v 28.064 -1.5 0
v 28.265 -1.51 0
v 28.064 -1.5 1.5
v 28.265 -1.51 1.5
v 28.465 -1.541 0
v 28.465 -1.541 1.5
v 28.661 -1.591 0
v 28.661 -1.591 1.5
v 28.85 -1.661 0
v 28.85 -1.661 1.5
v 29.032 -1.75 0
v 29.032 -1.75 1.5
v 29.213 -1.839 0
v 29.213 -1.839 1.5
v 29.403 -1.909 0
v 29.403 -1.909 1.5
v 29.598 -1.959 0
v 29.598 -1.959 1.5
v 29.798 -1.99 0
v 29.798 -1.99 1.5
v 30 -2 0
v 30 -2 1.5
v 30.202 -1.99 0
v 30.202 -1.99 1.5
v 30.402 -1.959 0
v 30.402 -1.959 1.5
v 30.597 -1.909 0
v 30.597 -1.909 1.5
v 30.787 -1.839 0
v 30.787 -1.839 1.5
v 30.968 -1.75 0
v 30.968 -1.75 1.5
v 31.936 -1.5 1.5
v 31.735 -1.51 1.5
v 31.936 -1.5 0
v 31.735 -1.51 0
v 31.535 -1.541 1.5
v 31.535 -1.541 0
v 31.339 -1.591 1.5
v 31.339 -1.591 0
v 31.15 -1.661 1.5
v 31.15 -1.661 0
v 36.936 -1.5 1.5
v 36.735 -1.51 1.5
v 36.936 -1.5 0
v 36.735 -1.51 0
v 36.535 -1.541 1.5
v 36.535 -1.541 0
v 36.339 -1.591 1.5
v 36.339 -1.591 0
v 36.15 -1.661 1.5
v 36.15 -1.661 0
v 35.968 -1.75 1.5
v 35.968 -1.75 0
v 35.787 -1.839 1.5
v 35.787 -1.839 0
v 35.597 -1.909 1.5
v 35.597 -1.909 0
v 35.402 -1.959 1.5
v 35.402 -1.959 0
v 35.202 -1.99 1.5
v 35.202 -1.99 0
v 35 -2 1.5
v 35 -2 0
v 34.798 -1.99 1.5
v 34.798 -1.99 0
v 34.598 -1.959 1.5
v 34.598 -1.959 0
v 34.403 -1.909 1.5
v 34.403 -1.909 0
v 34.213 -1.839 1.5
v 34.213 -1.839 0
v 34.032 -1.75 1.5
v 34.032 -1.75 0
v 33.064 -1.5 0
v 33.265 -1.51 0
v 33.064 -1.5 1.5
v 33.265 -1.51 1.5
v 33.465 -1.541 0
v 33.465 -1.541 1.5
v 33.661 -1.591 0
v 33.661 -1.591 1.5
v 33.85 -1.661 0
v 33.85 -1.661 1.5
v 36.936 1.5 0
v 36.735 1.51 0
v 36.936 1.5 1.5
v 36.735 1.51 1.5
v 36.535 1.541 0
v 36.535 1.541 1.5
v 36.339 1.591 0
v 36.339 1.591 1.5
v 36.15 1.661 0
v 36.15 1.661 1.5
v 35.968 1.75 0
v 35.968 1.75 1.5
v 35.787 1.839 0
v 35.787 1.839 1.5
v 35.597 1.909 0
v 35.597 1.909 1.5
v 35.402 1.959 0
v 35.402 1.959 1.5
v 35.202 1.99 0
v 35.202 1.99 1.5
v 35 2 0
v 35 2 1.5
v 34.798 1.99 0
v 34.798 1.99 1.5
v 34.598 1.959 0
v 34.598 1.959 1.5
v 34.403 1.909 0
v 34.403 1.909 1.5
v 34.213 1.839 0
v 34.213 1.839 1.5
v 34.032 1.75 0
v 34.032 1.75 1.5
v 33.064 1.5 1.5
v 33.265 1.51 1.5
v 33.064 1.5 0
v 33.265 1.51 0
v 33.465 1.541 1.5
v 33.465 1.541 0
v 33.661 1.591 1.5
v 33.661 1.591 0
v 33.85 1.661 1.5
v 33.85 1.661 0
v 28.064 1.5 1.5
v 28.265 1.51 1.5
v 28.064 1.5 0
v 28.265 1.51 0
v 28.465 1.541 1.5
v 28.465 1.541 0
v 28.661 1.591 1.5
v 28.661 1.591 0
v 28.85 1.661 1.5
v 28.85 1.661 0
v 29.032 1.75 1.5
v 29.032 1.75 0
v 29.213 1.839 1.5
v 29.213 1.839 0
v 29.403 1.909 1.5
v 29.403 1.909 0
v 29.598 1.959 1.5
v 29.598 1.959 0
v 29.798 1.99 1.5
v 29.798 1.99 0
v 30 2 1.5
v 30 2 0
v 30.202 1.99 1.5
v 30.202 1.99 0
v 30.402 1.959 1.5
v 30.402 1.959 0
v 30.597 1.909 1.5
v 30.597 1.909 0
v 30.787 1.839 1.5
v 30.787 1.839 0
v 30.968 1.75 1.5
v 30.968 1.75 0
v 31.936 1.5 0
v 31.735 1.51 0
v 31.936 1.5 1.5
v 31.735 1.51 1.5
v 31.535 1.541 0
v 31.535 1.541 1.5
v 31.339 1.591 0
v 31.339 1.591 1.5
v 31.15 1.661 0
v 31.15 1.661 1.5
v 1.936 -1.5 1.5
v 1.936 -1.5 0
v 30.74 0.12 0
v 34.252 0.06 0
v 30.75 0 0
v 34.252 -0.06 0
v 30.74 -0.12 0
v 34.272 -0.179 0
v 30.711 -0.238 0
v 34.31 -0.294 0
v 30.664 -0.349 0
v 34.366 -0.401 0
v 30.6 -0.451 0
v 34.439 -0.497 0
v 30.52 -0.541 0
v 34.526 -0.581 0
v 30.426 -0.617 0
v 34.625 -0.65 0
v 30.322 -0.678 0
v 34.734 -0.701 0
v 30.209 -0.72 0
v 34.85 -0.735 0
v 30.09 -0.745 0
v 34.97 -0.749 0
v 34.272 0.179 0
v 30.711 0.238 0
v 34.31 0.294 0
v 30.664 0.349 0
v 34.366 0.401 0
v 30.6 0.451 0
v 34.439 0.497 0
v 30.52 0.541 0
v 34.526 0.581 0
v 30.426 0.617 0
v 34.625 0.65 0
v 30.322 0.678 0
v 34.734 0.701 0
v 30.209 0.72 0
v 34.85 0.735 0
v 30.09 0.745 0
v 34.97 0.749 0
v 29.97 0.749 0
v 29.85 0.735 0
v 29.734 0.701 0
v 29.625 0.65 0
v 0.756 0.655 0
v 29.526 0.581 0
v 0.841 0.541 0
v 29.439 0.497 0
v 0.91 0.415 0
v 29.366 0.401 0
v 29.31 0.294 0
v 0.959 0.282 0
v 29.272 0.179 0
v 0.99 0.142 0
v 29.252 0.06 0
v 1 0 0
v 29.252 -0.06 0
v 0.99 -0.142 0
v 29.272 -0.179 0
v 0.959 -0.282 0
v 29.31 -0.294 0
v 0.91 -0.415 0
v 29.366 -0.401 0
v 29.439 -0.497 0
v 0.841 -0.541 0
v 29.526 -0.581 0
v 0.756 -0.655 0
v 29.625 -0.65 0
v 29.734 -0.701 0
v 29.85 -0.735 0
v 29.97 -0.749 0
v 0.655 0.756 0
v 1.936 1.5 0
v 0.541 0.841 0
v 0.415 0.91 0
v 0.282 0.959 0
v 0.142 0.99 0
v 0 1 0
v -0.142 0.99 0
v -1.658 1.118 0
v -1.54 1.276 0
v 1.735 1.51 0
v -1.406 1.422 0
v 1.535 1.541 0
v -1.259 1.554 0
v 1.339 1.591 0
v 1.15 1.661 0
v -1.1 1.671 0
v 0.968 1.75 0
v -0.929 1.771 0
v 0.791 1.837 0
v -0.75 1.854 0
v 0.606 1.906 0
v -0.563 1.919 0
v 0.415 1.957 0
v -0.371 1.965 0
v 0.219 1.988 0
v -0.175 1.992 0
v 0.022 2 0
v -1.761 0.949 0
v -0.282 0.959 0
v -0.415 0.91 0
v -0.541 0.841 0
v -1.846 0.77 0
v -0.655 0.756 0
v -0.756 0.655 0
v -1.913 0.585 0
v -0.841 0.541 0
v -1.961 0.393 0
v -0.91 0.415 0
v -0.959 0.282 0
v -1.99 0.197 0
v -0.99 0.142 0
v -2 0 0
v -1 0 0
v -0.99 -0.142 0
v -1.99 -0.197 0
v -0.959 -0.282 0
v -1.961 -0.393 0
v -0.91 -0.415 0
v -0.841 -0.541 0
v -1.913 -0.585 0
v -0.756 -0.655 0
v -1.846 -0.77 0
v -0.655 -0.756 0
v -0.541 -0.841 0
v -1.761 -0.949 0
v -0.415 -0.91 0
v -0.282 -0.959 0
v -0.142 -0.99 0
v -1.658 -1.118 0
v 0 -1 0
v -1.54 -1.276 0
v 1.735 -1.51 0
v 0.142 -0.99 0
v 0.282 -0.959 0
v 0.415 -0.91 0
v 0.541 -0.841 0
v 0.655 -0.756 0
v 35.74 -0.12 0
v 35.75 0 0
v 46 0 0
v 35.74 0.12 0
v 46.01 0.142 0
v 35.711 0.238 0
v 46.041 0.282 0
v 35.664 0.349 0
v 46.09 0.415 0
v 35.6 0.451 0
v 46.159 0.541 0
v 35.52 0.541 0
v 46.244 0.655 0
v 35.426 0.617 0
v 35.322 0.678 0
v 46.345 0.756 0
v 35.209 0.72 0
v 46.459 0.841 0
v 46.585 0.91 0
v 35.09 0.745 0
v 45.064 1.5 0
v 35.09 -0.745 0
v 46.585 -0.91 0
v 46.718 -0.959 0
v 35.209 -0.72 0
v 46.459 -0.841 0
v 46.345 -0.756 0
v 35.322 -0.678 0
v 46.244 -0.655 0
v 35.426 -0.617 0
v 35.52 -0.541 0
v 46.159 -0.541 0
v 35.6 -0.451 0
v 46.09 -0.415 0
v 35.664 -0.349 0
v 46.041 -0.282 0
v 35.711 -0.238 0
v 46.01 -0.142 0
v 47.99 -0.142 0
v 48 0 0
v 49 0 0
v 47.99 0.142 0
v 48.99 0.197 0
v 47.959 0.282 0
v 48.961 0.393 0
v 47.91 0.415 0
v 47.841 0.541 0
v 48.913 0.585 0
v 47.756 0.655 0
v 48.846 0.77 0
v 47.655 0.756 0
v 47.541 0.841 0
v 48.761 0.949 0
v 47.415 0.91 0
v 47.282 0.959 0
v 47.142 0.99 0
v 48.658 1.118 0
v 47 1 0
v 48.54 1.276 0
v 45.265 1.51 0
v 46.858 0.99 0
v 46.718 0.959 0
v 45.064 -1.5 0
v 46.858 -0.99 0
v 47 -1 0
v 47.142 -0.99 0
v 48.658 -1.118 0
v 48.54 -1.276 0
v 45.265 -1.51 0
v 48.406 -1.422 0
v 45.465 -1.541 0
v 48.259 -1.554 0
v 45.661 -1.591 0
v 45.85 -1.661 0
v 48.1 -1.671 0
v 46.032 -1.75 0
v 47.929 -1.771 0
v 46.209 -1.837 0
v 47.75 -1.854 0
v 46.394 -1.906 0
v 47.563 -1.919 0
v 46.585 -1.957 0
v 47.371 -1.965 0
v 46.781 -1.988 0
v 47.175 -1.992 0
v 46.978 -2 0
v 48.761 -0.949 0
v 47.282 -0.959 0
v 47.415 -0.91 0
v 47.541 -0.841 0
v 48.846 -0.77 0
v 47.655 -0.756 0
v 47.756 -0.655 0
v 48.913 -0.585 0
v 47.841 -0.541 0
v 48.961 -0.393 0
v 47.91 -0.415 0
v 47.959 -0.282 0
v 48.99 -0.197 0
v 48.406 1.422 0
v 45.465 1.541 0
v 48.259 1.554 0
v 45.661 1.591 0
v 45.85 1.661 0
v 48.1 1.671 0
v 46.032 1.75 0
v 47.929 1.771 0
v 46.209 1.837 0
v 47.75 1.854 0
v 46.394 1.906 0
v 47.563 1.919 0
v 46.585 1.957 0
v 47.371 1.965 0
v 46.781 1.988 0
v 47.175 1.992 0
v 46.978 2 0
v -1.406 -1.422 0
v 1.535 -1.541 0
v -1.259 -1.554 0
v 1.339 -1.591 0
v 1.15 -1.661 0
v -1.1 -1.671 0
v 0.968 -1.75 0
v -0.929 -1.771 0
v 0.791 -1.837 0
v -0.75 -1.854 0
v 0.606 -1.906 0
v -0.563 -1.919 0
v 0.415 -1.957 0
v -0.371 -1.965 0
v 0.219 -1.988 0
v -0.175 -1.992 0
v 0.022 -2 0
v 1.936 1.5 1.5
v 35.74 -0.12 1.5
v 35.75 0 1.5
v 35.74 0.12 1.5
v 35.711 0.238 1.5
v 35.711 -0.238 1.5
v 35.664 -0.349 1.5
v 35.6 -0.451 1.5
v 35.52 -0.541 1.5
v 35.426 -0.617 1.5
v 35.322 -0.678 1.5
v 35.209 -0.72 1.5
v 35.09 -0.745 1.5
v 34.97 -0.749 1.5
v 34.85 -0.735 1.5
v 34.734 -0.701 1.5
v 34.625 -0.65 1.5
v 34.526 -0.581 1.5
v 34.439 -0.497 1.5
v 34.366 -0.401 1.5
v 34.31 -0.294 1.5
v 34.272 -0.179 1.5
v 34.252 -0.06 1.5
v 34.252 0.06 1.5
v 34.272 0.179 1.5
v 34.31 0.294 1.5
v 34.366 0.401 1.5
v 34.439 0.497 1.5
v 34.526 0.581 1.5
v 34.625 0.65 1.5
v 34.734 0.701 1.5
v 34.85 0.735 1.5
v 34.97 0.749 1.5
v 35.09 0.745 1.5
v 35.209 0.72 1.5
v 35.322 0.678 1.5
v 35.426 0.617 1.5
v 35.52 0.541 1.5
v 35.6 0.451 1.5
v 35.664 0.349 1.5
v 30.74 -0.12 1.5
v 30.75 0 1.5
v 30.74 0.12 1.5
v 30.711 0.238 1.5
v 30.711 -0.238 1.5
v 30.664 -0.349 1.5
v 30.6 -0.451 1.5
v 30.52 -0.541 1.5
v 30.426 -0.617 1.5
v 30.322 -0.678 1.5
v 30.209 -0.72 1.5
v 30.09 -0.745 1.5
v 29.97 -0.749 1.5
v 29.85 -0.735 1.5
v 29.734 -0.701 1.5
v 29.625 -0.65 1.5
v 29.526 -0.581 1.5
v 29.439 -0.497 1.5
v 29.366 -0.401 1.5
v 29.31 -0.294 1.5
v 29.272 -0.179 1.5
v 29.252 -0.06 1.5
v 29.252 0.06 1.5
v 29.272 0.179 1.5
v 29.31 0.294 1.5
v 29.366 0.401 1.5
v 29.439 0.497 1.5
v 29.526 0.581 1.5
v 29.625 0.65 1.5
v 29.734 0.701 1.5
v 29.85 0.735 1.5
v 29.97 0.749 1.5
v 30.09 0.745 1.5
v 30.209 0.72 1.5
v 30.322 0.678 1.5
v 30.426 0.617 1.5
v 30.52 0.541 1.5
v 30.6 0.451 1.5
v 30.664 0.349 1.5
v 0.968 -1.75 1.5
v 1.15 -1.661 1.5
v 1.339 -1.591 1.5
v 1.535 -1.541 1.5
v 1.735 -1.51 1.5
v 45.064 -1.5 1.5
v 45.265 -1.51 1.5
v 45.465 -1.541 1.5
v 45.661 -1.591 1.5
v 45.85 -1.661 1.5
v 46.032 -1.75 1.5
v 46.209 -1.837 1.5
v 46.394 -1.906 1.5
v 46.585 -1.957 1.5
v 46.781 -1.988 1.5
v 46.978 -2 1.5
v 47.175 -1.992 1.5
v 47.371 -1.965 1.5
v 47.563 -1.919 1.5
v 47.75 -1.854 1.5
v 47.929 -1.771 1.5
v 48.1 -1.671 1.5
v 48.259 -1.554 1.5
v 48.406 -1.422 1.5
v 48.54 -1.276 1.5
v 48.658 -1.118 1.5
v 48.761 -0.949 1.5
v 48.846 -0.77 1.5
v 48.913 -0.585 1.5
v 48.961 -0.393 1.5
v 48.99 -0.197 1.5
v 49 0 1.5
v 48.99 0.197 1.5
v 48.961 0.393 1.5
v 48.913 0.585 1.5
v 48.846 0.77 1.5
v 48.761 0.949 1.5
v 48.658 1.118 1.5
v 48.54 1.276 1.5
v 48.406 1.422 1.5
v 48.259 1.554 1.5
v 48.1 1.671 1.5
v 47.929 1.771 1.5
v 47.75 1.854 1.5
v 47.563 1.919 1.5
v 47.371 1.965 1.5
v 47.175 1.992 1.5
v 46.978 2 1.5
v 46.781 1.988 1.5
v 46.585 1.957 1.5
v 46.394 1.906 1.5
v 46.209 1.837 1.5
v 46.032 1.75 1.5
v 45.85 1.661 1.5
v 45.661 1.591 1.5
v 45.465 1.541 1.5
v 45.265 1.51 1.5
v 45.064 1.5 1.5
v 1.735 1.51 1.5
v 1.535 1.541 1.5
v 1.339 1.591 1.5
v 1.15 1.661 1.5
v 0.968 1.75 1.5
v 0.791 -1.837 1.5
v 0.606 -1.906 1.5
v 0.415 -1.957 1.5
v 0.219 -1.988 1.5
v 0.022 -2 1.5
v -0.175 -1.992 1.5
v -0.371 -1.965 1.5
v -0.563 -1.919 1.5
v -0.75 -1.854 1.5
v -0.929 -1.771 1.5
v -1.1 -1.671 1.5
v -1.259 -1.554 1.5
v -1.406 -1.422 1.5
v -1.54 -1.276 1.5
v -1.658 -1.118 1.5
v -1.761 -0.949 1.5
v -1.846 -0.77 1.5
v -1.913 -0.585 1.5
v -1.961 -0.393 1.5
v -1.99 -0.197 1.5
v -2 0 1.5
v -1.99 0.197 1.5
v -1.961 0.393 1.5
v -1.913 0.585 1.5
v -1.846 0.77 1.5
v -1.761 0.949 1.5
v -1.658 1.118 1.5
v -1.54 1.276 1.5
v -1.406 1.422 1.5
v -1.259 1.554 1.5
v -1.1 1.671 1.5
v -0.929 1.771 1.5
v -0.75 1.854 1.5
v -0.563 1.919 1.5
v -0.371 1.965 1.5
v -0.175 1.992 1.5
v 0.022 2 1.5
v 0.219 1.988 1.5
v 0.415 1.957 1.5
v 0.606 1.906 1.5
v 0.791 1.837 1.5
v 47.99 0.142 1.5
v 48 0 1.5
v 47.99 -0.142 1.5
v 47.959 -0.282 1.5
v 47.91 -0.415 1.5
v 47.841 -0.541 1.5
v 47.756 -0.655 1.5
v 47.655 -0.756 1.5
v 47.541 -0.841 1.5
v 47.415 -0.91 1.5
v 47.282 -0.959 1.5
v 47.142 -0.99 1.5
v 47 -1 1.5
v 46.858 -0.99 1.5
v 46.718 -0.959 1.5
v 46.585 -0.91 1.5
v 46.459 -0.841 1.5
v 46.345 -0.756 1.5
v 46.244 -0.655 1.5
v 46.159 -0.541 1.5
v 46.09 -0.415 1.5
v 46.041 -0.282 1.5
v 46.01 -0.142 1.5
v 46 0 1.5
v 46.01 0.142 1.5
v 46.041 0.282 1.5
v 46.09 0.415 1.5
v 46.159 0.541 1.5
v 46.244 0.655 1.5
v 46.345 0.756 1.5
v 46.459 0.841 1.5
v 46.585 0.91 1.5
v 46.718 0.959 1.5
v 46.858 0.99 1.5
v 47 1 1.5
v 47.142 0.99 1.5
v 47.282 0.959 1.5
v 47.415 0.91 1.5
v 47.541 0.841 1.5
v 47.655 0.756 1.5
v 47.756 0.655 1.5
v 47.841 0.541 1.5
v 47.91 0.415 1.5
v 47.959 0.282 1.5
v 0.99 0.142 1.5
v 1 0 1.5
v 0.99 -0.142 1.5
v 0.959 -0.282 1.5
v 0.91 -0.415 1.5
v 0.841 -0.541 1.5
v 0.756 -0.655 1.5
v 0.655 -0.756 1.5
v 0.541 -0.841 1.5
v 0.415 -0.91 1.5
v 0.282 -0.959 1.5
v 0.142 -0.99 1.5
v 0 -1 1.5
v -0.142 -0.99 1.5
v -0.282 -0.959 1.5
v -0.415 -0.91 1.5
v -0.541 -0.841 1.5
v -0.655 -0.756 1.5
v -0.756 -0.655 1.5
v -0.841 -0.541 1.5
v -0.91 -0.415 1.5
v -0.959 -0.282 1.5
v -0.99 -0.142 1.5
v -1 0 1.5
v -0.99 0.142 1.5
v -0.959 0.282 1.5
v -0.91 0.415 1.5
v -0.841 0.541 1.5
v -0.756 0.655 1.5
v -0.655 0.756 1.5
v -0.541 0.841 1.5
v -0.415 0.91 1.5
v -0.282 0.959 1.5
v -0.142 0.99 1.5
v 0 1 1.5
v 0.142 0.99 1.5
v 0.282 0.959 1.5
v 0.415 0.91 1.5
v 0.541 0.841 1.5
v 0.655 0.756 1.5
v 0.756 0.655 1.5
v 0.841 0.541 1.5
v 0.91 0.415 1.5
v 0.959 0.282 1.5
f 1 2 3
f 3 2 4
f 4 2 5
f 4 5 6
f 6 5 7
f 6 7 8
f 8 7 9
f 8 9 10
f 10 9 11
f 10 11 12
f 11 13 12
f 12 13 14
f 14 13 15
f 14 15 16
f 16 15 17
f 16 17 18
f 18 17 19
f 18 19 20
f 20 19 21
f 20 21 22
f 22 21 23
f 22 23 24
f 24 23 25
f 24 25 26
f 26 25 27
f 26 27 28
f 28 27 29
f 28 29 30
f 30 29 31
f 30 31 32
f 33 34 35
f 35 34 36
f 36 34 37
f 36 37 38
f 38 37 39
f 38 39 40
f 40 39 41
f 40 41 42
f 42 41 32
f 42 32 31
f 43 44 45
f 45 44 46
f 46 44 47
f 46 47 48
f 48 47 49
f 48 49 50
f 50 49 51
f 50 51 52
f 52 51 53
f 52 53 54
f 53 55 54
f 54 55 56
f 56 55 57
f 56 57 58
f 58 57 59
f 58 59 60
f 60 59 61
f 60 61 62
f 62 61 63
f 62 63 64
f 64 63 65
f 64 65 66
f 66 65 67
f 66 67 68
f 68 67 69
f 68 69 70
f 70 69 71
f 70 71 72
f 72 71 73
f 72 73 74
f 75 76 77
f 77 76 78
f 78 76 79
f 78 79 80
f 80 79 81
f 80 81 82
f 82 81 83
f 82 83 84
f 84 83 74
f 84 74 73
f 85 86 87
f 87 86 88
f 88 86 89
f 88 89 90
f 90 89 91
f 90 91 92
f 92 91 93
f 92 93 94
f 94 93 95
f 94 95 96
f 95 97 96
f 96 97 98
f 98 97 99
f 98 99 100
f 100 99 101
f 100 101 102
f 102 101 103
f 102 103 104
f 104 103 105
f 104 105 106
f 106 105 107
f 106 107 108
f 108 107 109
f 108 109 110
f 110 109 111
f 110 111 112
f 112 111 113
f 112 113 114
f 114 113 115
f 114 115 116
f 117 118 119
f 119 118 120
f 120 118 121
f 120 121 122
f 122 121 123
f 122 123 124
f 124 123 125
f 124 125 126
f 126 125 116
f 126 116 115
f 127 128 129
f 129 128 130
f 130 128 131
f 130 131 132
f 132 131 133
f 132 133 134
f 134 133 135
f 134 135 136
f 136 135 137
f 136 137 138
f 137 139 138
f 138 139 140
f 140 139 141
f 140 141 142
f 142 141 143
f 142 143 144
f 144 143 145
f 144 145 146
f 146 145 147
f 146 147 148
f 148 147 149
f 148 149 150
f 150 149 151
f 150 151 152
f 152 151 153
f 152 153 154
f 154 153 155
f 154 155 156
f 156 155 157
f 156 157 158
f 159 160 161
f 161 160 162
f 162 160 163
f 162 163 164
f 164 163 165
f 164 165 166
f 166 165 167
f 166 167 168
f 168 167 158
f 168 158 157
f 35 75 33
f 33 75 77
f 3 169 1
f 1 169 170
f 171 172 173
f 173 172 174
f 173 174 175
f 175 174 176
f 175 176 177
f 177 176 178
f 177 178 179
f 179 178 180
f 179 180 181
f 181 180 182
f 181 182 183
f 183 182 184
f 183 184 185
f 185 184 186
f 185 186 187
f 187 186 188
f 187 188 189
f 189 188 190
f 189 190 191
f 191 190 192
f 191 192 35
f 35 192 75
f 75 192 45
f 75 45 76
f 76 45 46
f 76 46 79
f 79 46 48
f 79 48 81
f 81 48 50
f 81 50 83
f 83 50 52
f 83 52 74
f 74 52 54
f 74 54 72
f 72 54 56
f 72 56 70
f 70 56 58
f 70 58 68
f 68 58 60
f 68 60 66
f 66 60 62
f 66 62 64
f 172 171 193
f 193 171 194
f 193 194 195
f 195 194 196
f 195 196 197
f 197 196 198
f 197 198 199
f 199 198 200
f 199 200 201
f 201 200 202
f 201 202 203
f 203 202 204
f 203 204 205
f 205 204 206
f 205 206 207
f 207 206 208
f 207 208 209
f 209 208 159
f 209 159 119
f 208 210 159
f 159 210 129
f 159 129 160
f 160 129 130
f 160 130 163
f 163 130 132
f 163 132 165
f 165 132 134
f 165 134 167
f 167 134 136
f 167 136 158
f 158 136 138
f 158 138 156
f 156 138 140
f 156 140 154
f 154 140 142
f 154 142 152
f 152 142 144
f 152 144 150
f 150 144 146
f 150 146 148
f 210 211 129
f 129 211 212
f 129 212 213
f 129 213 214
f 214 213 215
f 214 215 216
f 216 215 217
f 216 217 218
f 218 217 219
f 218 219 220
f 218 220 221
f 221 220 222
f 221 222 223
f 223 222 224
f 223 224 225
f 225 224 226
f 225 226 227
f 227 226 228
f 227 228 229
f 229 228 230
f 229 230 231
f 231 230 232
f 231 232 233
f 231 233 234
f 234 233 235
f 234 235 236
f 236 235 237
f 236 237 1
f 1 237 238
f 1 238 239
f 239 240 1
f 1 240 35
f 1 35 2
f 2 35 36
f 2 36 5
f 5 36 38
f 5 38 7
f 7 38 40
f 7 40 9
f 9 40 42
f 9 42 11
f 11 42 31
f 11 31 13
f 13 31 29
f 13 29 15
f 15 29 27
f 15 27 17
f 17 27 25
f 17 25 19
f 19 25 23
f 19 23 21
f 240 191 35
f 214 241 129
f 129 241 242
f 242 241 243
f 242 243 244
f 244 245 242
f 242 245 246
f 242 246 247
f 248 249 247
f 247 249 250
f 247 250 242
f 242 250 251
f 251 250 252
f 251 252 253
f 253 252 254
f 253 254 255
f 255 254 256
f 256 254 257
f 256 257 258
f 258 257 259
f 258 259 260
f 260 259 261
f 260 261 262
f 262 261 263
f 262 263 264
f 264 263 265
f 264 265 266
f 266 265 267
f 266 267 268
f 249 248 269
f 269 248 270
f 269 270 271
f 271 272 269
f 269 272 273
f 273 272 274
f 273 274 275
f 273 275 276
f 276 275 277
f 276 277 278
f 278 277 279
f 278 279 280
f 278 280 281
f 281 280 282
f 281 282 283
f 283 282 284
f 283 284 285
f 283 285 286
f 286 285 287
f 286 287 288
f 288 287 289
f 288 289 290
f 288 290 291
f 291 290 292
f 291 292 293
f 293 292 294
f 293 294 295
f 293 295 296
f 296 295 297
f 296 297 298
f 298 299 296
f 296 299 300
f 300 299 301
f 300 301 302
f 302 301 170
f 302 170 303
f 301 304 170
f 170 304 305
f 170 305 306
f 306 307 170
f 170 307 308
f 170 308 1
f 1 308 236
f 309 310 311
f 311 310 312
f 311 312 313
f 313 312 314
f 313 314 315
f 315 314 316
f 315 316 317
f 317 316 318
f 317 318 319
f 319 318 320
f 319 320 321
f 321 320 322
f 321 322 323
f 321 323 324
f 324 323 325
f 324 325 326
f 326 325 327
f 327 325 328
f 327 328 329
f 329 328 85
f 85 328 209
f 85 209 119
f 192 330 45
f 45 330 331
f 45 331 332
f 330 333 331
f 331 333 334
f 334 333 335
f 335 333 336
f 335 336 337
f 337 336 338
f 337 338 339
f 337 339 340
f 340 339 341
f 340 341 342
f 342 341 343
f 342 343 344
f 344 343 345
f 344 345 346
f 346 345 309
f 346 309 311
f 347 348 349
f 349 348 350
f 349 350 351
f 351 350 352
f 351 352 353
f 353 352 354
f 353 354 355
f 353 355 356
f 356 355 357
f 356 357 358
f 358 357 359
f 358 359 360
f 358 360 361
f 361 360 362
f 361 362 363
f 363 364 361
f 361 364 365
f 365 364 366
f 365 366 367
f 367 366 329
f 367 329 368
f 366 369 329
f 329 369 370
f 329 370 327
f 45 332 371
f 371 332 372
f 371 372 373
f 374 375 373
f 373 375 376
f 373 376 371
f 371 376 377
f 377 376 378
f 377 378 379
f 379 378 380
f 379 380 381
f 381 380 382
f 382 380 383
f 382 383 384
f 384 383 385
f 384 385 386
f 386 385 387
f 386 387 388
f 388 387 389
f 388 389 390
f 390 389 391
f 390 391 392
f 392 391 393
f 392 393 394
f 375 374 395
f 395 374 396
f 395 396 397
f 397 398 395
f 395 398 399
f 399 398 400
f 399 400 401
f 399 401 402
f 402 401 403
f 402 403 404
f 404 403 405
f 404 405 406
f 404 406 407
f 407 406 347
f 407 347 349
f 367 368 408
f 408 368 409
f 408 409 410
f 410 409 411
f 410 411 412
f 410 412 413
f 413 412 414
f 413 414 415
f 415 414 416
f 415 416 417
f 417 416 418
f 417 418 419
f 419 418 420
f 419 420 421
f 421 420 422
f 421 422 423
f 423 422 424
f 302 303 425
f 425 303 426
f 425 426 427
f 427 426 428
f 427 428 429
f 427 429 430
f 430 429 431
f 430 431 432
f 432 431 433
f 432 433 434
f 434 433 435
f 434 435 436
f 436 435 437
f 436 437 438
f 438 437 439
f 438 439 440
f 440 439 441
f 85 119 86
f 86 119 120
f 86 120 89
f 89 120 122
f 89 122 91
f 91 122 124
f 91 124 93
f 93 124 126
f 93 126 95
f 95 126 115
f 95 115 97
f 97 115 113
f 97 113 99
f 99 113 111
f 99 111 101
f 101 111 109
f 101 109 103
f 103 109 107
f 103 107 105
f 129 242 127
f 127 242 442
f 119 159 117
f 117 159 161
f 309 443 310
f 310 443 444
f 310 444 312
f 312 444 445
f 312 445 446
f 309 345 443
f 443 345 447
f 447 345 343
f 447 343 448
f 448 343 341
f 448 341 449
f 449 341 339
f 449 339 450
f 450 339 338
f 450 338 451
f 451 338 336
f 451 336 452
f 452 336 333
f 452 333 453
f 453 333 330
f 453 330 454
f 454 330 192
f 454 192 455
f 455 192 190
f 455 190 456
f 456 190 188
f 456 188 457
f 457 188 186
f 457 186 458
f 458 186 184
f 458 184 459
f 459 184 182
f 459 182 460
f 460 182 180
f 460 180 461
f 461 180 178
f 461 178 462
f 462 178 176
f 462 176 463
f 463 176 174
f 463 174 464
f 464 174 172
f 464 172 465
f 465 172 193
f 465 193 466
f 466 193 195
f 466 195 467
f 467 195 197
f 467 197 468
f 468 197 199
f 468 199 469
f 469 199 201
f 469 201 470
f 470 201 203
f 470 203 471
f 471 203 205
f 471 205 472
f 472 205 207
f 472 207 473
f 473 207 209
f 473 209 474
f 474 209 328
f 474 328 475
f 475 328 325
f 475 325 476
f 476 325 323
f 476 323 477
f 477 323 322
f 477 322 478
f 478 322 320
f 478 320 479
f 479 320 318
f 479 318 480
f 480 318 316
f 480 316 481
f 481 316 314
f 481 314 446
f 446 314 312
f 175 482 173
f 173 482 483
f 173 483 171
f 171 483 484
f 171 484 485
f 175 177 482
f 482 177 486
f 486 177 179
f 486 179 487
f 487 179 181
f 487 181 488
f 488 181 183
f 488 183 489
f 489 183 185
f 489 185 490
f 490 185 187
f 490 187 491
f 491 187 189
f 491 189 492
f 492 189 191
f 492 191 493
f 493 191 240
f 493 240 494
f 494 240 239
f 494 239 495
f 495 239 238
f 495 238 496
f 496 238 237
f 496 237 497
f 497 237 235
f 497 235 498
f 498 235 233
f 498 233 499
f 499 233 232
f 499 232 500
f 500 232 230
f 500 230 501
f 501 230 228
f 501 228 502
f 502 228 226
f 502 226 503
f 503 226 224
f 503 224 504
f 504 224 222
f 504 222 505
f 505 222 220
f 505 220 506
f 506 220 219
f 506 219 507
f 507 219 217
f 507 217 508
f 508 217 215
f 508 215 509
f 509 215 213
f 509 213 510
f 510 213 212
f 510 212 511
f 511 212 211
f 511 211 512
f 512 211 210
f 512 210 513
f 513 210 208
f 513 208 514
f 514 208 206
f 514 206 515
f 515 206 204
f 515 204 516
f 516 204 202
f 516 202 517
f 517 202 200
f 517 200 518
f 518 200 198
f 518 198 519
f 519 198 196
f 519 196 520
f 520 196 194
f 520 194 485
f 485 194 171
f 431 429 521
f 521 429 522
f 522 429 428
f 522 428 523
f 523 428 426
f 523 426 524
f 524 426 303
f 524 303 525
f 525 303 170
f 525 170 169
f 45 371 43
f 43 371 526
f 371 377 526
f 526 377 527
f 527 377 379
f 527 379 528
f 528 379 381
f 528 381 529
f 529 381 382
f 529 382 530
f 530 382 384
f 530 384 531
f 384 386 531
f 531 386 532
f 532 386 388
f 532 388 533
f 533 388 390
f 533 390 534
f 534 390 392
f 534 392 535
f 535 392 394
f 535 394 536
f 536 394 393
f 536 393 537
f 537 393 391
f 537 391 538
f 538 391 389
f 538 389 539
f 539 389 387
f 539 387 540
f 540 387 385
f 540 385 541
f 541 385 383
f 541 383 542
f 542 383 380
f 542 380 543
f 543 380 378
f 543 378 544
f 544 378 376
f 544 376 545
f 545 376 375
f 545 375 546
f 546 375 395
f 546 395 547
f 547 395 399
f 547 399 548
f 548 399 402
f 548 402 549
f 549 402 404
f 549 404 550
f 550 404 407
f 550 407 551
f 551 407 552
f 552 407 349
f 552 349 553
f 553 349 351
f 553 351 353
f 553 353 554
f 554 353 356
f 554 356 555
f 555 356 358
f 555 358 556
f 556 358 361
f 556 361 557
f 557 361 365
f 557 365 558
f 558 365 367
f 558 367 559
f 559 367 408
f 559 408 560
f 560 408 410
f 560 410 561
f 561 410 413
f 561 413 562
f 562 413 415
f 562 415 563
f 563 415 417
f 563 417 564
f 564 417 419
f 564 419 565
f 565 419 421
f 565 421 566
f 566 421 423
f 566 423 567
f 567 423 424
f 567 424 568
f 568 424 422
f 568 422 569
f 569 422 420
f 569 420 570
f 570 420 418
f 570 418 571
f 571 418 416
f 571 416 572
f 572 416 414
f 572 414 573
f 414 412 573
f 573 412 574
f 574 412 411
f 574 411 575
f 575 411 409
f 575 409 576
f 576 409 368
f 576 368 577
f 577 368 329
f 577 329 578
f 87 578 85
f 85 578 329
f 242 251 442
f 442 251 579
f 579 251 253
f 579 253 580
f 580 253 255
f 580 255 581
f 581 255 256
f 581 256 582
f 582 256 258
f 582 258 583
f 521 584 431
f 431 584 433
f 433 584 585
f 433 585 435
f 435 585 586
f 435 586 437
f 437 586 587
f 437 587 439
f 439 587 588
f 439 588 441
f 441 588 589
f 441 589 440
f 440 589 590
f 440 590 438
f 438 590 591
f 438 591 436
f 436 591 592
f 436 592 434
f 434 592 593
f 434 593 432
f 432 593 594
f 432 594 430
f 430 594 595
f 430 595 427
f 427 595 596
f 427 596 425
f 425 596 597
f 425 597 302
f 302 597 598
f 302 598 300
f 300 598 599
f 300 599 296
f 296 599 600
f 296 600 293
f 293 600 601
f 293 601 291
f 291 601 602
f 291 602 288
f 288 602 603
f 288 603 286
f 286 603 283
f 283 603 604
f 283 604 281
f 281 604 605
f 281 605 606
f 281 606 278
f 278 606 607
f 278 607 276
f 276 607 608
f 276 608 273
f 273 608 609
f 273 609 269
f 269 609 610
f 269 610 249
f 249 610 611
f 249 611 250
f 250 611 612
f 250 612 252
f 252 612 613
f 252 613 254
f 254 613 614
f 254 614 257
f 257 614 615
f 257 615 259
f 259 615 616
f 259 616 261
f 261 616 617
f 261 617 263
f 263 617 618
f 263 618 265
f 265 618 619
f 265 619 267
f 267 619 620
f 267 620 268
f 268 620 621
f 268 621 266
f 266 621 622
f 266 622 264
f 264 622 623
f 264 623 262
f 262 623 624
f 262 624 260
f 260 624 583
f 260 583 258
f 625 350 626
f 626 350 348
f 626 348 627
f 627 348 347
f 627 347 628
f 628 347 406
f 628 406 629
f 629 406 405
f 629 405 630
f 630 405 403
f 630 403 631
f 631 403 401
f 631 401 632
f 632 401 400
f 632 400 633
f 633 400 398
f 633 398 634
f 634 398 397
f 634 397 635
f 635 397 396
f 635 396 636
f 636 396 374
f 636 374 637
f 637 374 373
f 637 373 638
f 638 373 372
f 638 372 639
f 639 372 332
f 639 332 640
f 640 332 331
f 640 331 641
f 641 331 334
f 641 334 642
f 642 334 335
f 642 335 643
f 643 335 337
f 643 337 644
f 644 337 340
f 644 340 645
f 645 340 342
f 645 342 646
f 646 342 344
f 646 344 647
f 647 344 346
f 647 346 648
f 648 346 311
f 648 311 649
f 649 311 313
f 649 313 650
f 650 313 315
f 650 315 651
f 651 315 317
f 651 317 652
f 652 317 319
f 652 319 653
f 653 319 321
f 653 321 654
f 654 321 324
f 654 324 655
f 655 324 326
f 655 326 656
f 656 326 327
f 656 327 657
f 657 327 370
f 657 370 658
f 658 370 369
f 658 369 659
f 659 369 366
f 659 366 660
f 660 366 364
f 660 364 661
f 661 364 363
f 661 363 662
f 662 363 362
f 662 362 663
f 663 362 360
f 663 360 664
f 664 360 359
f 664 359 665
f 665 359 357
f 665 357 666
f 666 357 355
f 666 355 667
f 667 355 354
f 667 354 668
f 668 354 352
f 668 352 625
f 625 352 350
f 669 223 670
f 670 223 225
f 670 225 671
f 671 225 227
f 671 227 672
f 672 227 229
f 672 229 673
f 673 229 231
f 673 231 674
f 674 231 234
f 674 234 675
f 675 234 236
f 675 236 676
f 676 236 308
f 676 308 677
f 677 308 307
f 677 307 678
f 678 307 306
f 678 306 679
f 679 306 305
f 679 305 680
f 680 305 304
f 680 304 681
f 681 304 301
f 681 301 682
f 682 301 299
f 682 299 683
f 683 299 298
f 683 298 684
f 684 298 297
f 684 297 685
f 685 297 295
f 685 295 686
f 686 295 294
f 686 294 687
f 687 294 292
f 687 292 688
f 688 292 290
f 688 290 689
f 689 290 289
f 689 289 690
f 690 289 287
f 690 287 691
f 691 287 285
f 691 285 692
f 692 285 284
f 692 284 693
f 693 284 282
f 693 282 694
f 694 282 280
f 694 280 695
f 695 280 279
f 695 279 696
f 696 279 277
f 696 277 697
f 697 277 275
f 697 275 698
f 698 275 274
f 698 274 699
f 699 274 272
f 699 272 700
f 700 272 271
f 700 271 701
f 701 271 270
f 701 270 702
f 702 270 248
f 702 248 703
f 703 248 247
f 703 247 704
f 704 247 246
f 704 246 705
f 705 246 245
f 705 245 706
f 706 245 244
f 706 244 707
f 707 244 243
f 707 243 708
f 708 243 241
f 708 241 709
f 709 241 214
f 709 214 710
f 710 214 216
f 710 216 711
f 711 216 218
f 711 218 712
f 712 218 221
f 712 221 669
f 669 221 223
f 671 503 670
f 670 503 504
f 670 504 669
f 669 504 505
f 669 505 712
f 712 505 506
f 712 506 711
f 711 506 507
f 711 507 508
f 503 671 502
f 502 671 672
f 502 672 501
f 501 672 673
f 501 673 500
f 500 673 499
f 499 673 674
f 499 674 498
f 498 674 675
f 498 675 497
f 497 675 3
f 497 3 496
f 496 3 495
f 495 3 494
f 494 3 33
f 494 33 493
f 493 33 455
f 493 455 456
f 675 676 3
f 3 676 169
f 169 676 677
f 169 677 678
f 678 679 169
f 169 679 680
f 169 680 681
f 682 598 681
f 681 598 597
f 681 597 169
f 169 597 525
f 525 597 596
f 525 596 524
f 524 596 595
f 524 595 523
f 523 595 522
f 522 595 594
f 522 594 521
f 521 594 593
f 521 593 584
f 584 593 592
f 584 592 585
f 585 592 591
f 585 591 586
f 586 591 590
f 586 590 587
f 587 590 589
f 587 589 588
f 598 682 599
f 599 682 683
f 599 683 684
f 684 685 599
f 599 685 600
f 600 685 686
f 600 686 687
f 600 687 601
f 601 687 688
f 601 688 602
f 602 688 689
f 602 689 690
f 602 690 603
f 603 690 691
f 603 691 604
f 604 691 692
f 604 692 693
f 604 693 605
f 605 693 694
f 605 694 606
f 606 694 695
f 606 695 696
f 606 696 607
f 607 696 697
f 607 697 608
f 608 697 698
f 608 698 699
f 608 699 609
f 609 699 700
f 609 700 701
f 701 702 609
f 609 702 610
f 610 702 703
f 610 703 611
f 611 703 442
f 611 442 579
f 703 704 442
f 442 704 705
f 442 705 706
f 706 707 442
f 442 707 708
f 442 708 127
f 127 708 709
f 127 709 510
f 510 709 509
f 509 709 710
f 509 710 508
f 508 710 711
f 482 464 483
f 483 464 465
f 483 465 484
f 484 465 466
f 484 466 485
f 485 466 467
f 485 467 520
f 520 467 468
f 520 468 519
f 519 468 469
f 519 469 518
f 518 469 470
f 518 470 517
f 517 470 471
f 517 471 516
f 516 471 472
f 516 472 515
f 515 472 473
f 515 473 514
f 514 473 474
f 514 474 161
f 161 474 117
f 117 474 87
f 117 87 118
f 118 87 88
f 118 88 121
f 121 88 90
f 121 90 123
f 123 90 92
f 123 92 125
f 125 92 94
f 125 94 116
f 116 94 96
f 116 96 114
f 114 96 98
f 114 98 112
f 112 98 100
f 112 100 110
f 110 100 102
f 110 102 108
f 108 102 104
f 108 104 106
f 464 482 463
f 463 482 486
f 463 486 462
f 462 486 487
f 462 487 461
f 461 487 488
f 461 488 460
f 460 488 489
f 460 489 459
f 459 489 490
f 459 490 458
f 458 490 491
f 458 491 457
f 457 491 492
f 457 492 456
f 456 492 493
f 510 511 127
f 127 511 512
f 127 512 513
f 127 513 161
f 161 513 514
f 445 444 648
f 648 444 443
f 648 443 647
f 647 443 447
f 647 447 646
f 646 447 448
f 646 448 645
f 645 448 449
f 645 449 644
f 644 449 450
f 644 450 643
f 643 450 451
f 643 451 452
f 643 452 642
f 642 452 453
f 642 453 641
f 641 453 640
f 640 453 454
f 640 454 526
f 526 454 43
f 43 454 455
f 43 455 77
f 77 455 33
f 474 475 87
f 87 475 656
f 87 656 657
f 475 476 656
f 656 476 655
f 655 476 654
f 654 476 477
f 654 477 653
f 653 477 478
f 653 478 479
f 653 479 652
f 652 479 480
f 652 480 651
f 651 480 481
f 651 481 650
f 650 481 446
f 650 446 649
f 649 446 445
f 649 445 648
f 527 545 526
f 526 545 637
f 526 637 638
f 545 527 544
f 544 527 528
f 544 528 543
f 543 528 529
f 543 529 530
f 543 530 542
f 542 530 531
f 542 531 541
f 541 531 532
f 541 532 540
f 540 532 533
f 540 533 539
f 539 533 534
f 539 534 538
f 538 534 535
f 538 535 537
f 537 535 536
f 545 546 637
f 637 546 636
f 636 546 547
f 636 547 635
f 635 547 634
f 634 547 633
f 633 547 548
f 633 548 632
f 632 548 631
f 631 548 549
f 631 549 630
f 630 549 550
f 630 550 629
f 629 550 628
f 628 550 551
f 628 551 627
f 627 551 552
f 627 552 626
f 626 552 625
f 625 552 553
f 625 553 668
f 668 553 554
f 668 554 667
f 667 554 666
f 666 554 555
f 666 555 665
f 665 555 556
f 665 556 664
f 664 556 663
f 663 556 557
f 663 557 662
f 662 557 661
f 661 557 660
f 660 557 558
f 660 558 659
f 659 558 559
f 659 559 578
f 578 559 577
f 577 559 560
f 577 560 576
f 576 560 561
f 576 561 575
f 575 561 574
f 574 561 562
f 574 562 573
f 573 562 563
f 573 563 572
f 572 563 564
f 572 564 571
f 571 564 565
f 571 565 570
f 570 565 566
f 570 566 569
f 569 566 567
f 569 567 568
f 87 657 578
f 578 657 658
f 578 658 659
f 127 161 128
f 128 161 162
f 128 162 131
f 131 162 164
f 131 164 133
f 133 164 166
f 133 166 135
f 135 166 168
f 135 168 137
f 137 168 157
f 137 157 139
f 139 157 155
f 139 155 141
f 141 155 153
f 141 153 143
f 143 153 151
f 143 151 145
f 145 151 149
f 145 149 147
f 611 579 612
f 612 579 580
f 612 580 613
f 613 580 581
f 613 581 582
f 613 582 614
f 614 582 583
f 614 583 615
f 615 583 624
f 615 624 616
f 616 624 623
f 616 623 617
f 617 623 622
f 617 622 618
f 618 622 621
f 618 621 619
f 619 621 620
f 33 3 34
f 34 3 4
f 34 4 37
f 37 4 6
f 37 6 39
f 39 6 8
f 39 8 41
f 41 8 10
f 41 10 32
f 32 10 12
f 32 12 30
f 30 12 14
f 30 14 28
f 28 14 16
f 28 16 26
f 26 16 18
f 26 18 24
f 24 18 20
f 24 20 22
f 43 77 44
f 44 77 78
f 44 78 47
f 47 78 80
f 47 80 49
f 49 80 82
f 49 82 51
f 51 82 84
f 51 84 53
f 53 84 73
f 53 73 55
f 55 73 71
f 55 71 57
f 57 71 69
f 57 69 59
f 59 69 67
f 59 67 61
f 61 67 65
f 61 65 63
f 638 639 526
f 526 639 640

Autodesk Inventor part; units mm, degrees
ref_plane "YZ Plane" through (0, 0, 0) normal (1, 0, 0) x (0, 1, 0)
ref_plane "XZ Plane" through (0, 0, 0) normal (0, 1, 0) x (-1, 0, 0)
ref_plane "XY Plane" through (0, 0, 0) normal (0, 0, 1) x (1, 0, 0)
sketch "Sketch1" plane through (0, 0, 0) normal (0, 0, 1) x (1, 0, 0)
  circle A0 centre (0, 0) radius 1
  circle A1 centre (0, 0) radius 2
  line L0 (0, 0) -> (47, 0) construction
  circle A2 centre (47, 0) radius 2
  circle A3 centre (47, 0) radius 1
  line L1 (1, 1.5) -> (46, 1.5)
  line L2 (46, 1.5) -> (46, -1.5)
  line L3 (46, -1.5) -> (1, -1.5)
  line L4 (1, -1.5) -> (1, 1.5)
  line L5 (1, 1.5) -> (46, -1.5) construction
  line L6 (46, 1.5) -> (1, -1.5) construction
  point P0 (23.5, 0)
  point P1 (1.3229, -1.5)
  point P2 (45.6771, -1.5)
  point P3 (45.6771, 1.5)
  point P4 (1.3229, 1.5)
  dimension "d0" = 2
  dimension "d1" = 4
  dimension "d8" = 3
  dimension "d9" = 47
extrude "Extrusion1" add sketch "Sketch1" along normal blind 1.5
fillet "Fillet2" radius 2 4 edges at (1.3229, 1.5, 0.75) (45.6771, 1.5, 0.75) (45.6771, -1.5, 0.75) (1.3229, -1.5, 0.75)
sketch "Sketch3" plane through (0, 0, 1.5) normal (0, 0, 1) x (1, 0, 0)
  line L0 (-12.2, 0) -> (59.2, 0) projected
  circle A0 centre (35, 0) radius 0.75
  circle A1 centre (30, 0) radius 0.75
  circle A2 centre (47, 0) radius 1 projected
  point P0 (0, 0)
  dimension "d11" = 12
  dimension "d12" = 5
  dimension "d13" = 1.5
extrude "Extrusion2" cut sketch "Sketch3" against normal through all contours A1 L0 | A0 L0 | L0 A0 | L0 A1
sketch "Sketch4" plane through (0, 0, 1.5) normal (0, 0, 1) x (1, 0, 0)
  circle A0 centre (30, 0) radius 0.75 projected
  circle A1 centre (30, 0) radius 2
  circle A2 centre (35, 0) radius 0.75 projected
  circle A3 centre (35, 0) radius 2
  point P0 (0, 0)
  dimension "d16" = 4
extrude "Extrusion3" add sketch "Sketch4" against normal up to surface (1.5 mm away)
fillet "Fillet3" radius 2 8 edges at (28.6771, 1.5, 0.75) (31.3229, 1.5, 0.75) (33.6771, 1.5, 0.75) (36.3229, 1.5, 0.75) (33.6771, -1.5, 0.75) (36.3229, -1.5, 0.75) (28.6771, -1.5, 0.75) (31.3229, -1.5, 0.75)
properties part number "ff"
